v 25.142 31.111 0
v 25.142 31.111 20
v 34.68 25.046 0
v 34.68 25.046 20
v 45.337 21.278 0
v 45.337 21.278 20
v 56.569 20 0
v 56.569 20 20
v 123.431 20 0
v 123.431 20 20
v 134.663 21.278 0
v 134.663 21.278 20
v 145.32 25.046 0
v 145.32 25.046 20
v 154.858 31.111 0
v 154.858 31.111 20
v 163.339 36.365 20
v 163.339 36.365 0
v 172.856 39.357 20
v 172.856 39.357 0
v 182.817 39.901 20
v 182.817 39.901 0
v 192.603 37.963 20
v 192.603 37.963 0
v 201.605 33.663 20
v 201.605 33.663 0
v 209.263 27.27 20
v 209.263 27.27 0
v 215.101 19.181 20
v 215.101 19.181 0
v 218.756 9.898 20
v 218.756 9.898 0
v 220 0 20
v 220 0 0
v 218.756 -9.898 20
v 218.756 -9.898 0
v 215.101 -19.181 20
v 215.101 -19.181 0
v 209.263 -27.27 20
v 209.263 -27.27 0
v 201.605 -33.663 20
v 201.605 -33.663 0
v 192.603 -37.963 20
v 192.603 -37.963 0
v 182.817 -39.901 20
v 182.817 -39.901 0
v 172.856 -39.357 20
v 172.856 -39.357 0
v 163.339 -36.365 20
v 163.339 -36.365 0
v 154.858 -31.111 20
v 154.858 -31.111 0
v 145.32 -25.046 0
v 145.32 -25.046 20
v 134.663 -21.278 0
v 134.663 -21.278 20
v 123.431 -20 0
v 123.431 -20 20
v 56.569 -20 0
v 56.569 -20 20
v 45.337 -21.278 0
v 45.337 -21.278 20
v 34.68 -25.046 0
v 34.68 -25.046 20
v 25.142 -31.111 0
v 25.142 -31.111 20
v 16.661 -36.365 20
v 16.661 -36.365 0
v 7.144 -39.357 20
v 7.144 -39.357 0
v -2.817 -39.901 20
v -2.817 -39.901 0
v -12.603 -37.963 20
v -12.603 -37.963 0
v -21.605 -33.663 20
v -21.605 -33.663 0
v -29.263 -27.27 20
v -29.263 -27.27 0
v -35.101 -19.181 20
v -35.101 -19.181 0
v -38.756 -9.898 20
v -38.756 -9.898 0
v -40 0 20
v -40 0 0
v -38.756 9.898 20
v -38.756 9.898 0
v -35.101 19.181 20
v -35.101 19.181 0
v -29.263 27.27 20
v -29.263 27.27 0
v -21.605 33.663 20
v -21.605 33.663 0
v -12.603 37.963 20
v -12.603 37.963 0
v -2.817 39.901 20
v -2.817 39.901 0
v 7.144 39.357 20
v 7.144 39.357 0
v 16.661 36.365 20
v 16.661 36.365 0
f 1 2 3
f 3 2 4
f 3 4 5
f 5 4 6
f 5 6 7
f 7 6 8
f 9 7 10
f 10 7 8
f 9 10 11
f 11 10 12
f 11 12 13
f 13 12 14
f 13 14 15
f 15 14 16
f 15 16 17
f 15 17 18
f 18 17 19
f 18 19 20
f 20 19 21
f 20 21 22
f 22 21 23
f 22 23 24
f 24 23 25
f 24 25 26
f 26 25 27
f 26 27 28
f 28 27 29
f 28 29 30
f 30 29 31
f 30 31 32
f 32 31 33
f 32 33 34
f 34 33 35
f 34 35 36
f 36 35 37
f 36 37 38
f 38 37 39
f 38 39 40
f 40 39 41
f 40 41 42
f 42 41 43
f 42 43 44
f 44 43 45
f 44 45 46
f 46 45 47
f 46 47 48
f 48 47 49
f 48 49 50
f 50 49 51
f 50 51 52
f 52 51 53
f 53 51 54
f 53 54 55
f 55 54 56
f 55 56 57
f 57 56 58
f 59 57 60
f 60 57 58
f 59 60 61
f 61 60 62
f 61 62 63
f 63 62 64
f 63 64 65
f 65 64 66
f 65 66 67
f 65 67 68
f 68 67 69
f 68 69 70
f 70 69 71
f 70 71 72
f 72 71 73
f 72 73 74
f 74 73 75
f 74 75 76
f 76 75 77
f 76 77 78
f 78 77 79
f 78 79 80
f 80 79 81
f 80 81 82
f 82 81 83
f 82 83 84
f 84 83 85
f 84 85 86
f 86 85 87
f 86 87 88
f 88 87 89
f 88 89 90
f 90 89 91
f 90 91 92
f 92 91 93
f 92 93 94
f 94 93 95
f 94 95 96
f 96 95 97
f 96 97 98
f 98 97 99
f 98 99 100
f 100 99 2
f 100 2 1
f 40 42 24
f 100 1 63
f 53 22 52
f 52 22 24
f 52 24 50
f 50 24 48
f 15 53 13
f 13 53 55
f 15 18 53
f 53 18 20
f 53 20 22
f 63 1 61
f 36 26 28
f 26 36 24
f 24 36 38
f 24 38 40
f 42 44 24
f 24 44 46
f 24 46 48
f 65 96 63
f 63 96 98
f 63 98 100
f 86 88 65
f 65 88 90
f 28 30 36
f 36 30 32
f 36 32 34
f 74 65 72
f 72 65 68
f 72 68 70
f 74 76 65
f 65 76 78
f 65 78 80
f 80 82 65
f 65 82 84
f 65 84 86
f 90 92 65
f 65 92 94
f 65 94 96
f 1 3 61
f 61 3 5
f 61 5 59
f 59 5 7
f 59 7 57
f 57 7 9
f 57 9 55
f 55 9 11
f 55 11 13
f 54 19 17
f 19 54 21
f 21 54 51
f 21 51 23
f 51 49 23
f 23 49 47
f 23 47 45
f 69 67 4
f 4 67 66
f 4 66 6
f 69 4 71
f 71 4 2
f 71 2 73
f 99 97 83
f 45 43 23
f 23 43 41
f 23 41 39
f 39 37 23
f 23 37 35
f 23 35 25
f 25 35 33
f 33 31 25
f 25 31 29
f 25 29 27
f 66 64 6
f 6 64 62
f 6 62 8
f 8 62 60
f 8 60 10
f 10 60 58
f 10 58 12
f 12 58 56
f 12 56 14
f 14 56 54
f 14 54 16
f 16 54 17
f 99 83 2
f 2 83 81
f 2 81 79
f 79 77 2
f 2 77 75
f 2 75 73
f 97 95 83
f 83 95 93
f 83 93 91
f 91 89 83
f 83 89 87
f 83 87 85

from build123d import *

# Parameters (mm, degrees)
EXTRUDE_1_DEPTH = 20


with BuildPart() as part:
    # 草图1 → 凸台-拉伸1 (new body)
    with BuildSketch(Plane.XY):
        with BuildLine():
            Line((56.568542495, 20), (123.431457505, 20))
            ThreePointArc((123.431457505, 20), (140.098124172, 22.859547921), (154.858425558, 31.111111111))
            ThreePointArc((154.858425558, 31.111111111), (220, 0), (154.858425558, -31.111111111))
            ThreePointArc((154.858425558, -31.111111111), (140.098124172, -22.859547921), (123.431457505, -20))
            Line((123.431457505, -20), (56.568542495, -20))
            ThreePointArc((56.568542495, -20), (39.901875828, -22.859547921), (25.141574442, -31.111111111))
            ThreePointArc((25.141574442, -31.111111111), (-40, 0), (25.141574442, 31.111111111))
            ThreePointArc((25.141574442, 31.111111111), (39.901875828, 22.859547921), (56.568542495, 20))
        make_face()
    extrude(amount=EXTRUDE_1_DEPTH)


solid = part.part
